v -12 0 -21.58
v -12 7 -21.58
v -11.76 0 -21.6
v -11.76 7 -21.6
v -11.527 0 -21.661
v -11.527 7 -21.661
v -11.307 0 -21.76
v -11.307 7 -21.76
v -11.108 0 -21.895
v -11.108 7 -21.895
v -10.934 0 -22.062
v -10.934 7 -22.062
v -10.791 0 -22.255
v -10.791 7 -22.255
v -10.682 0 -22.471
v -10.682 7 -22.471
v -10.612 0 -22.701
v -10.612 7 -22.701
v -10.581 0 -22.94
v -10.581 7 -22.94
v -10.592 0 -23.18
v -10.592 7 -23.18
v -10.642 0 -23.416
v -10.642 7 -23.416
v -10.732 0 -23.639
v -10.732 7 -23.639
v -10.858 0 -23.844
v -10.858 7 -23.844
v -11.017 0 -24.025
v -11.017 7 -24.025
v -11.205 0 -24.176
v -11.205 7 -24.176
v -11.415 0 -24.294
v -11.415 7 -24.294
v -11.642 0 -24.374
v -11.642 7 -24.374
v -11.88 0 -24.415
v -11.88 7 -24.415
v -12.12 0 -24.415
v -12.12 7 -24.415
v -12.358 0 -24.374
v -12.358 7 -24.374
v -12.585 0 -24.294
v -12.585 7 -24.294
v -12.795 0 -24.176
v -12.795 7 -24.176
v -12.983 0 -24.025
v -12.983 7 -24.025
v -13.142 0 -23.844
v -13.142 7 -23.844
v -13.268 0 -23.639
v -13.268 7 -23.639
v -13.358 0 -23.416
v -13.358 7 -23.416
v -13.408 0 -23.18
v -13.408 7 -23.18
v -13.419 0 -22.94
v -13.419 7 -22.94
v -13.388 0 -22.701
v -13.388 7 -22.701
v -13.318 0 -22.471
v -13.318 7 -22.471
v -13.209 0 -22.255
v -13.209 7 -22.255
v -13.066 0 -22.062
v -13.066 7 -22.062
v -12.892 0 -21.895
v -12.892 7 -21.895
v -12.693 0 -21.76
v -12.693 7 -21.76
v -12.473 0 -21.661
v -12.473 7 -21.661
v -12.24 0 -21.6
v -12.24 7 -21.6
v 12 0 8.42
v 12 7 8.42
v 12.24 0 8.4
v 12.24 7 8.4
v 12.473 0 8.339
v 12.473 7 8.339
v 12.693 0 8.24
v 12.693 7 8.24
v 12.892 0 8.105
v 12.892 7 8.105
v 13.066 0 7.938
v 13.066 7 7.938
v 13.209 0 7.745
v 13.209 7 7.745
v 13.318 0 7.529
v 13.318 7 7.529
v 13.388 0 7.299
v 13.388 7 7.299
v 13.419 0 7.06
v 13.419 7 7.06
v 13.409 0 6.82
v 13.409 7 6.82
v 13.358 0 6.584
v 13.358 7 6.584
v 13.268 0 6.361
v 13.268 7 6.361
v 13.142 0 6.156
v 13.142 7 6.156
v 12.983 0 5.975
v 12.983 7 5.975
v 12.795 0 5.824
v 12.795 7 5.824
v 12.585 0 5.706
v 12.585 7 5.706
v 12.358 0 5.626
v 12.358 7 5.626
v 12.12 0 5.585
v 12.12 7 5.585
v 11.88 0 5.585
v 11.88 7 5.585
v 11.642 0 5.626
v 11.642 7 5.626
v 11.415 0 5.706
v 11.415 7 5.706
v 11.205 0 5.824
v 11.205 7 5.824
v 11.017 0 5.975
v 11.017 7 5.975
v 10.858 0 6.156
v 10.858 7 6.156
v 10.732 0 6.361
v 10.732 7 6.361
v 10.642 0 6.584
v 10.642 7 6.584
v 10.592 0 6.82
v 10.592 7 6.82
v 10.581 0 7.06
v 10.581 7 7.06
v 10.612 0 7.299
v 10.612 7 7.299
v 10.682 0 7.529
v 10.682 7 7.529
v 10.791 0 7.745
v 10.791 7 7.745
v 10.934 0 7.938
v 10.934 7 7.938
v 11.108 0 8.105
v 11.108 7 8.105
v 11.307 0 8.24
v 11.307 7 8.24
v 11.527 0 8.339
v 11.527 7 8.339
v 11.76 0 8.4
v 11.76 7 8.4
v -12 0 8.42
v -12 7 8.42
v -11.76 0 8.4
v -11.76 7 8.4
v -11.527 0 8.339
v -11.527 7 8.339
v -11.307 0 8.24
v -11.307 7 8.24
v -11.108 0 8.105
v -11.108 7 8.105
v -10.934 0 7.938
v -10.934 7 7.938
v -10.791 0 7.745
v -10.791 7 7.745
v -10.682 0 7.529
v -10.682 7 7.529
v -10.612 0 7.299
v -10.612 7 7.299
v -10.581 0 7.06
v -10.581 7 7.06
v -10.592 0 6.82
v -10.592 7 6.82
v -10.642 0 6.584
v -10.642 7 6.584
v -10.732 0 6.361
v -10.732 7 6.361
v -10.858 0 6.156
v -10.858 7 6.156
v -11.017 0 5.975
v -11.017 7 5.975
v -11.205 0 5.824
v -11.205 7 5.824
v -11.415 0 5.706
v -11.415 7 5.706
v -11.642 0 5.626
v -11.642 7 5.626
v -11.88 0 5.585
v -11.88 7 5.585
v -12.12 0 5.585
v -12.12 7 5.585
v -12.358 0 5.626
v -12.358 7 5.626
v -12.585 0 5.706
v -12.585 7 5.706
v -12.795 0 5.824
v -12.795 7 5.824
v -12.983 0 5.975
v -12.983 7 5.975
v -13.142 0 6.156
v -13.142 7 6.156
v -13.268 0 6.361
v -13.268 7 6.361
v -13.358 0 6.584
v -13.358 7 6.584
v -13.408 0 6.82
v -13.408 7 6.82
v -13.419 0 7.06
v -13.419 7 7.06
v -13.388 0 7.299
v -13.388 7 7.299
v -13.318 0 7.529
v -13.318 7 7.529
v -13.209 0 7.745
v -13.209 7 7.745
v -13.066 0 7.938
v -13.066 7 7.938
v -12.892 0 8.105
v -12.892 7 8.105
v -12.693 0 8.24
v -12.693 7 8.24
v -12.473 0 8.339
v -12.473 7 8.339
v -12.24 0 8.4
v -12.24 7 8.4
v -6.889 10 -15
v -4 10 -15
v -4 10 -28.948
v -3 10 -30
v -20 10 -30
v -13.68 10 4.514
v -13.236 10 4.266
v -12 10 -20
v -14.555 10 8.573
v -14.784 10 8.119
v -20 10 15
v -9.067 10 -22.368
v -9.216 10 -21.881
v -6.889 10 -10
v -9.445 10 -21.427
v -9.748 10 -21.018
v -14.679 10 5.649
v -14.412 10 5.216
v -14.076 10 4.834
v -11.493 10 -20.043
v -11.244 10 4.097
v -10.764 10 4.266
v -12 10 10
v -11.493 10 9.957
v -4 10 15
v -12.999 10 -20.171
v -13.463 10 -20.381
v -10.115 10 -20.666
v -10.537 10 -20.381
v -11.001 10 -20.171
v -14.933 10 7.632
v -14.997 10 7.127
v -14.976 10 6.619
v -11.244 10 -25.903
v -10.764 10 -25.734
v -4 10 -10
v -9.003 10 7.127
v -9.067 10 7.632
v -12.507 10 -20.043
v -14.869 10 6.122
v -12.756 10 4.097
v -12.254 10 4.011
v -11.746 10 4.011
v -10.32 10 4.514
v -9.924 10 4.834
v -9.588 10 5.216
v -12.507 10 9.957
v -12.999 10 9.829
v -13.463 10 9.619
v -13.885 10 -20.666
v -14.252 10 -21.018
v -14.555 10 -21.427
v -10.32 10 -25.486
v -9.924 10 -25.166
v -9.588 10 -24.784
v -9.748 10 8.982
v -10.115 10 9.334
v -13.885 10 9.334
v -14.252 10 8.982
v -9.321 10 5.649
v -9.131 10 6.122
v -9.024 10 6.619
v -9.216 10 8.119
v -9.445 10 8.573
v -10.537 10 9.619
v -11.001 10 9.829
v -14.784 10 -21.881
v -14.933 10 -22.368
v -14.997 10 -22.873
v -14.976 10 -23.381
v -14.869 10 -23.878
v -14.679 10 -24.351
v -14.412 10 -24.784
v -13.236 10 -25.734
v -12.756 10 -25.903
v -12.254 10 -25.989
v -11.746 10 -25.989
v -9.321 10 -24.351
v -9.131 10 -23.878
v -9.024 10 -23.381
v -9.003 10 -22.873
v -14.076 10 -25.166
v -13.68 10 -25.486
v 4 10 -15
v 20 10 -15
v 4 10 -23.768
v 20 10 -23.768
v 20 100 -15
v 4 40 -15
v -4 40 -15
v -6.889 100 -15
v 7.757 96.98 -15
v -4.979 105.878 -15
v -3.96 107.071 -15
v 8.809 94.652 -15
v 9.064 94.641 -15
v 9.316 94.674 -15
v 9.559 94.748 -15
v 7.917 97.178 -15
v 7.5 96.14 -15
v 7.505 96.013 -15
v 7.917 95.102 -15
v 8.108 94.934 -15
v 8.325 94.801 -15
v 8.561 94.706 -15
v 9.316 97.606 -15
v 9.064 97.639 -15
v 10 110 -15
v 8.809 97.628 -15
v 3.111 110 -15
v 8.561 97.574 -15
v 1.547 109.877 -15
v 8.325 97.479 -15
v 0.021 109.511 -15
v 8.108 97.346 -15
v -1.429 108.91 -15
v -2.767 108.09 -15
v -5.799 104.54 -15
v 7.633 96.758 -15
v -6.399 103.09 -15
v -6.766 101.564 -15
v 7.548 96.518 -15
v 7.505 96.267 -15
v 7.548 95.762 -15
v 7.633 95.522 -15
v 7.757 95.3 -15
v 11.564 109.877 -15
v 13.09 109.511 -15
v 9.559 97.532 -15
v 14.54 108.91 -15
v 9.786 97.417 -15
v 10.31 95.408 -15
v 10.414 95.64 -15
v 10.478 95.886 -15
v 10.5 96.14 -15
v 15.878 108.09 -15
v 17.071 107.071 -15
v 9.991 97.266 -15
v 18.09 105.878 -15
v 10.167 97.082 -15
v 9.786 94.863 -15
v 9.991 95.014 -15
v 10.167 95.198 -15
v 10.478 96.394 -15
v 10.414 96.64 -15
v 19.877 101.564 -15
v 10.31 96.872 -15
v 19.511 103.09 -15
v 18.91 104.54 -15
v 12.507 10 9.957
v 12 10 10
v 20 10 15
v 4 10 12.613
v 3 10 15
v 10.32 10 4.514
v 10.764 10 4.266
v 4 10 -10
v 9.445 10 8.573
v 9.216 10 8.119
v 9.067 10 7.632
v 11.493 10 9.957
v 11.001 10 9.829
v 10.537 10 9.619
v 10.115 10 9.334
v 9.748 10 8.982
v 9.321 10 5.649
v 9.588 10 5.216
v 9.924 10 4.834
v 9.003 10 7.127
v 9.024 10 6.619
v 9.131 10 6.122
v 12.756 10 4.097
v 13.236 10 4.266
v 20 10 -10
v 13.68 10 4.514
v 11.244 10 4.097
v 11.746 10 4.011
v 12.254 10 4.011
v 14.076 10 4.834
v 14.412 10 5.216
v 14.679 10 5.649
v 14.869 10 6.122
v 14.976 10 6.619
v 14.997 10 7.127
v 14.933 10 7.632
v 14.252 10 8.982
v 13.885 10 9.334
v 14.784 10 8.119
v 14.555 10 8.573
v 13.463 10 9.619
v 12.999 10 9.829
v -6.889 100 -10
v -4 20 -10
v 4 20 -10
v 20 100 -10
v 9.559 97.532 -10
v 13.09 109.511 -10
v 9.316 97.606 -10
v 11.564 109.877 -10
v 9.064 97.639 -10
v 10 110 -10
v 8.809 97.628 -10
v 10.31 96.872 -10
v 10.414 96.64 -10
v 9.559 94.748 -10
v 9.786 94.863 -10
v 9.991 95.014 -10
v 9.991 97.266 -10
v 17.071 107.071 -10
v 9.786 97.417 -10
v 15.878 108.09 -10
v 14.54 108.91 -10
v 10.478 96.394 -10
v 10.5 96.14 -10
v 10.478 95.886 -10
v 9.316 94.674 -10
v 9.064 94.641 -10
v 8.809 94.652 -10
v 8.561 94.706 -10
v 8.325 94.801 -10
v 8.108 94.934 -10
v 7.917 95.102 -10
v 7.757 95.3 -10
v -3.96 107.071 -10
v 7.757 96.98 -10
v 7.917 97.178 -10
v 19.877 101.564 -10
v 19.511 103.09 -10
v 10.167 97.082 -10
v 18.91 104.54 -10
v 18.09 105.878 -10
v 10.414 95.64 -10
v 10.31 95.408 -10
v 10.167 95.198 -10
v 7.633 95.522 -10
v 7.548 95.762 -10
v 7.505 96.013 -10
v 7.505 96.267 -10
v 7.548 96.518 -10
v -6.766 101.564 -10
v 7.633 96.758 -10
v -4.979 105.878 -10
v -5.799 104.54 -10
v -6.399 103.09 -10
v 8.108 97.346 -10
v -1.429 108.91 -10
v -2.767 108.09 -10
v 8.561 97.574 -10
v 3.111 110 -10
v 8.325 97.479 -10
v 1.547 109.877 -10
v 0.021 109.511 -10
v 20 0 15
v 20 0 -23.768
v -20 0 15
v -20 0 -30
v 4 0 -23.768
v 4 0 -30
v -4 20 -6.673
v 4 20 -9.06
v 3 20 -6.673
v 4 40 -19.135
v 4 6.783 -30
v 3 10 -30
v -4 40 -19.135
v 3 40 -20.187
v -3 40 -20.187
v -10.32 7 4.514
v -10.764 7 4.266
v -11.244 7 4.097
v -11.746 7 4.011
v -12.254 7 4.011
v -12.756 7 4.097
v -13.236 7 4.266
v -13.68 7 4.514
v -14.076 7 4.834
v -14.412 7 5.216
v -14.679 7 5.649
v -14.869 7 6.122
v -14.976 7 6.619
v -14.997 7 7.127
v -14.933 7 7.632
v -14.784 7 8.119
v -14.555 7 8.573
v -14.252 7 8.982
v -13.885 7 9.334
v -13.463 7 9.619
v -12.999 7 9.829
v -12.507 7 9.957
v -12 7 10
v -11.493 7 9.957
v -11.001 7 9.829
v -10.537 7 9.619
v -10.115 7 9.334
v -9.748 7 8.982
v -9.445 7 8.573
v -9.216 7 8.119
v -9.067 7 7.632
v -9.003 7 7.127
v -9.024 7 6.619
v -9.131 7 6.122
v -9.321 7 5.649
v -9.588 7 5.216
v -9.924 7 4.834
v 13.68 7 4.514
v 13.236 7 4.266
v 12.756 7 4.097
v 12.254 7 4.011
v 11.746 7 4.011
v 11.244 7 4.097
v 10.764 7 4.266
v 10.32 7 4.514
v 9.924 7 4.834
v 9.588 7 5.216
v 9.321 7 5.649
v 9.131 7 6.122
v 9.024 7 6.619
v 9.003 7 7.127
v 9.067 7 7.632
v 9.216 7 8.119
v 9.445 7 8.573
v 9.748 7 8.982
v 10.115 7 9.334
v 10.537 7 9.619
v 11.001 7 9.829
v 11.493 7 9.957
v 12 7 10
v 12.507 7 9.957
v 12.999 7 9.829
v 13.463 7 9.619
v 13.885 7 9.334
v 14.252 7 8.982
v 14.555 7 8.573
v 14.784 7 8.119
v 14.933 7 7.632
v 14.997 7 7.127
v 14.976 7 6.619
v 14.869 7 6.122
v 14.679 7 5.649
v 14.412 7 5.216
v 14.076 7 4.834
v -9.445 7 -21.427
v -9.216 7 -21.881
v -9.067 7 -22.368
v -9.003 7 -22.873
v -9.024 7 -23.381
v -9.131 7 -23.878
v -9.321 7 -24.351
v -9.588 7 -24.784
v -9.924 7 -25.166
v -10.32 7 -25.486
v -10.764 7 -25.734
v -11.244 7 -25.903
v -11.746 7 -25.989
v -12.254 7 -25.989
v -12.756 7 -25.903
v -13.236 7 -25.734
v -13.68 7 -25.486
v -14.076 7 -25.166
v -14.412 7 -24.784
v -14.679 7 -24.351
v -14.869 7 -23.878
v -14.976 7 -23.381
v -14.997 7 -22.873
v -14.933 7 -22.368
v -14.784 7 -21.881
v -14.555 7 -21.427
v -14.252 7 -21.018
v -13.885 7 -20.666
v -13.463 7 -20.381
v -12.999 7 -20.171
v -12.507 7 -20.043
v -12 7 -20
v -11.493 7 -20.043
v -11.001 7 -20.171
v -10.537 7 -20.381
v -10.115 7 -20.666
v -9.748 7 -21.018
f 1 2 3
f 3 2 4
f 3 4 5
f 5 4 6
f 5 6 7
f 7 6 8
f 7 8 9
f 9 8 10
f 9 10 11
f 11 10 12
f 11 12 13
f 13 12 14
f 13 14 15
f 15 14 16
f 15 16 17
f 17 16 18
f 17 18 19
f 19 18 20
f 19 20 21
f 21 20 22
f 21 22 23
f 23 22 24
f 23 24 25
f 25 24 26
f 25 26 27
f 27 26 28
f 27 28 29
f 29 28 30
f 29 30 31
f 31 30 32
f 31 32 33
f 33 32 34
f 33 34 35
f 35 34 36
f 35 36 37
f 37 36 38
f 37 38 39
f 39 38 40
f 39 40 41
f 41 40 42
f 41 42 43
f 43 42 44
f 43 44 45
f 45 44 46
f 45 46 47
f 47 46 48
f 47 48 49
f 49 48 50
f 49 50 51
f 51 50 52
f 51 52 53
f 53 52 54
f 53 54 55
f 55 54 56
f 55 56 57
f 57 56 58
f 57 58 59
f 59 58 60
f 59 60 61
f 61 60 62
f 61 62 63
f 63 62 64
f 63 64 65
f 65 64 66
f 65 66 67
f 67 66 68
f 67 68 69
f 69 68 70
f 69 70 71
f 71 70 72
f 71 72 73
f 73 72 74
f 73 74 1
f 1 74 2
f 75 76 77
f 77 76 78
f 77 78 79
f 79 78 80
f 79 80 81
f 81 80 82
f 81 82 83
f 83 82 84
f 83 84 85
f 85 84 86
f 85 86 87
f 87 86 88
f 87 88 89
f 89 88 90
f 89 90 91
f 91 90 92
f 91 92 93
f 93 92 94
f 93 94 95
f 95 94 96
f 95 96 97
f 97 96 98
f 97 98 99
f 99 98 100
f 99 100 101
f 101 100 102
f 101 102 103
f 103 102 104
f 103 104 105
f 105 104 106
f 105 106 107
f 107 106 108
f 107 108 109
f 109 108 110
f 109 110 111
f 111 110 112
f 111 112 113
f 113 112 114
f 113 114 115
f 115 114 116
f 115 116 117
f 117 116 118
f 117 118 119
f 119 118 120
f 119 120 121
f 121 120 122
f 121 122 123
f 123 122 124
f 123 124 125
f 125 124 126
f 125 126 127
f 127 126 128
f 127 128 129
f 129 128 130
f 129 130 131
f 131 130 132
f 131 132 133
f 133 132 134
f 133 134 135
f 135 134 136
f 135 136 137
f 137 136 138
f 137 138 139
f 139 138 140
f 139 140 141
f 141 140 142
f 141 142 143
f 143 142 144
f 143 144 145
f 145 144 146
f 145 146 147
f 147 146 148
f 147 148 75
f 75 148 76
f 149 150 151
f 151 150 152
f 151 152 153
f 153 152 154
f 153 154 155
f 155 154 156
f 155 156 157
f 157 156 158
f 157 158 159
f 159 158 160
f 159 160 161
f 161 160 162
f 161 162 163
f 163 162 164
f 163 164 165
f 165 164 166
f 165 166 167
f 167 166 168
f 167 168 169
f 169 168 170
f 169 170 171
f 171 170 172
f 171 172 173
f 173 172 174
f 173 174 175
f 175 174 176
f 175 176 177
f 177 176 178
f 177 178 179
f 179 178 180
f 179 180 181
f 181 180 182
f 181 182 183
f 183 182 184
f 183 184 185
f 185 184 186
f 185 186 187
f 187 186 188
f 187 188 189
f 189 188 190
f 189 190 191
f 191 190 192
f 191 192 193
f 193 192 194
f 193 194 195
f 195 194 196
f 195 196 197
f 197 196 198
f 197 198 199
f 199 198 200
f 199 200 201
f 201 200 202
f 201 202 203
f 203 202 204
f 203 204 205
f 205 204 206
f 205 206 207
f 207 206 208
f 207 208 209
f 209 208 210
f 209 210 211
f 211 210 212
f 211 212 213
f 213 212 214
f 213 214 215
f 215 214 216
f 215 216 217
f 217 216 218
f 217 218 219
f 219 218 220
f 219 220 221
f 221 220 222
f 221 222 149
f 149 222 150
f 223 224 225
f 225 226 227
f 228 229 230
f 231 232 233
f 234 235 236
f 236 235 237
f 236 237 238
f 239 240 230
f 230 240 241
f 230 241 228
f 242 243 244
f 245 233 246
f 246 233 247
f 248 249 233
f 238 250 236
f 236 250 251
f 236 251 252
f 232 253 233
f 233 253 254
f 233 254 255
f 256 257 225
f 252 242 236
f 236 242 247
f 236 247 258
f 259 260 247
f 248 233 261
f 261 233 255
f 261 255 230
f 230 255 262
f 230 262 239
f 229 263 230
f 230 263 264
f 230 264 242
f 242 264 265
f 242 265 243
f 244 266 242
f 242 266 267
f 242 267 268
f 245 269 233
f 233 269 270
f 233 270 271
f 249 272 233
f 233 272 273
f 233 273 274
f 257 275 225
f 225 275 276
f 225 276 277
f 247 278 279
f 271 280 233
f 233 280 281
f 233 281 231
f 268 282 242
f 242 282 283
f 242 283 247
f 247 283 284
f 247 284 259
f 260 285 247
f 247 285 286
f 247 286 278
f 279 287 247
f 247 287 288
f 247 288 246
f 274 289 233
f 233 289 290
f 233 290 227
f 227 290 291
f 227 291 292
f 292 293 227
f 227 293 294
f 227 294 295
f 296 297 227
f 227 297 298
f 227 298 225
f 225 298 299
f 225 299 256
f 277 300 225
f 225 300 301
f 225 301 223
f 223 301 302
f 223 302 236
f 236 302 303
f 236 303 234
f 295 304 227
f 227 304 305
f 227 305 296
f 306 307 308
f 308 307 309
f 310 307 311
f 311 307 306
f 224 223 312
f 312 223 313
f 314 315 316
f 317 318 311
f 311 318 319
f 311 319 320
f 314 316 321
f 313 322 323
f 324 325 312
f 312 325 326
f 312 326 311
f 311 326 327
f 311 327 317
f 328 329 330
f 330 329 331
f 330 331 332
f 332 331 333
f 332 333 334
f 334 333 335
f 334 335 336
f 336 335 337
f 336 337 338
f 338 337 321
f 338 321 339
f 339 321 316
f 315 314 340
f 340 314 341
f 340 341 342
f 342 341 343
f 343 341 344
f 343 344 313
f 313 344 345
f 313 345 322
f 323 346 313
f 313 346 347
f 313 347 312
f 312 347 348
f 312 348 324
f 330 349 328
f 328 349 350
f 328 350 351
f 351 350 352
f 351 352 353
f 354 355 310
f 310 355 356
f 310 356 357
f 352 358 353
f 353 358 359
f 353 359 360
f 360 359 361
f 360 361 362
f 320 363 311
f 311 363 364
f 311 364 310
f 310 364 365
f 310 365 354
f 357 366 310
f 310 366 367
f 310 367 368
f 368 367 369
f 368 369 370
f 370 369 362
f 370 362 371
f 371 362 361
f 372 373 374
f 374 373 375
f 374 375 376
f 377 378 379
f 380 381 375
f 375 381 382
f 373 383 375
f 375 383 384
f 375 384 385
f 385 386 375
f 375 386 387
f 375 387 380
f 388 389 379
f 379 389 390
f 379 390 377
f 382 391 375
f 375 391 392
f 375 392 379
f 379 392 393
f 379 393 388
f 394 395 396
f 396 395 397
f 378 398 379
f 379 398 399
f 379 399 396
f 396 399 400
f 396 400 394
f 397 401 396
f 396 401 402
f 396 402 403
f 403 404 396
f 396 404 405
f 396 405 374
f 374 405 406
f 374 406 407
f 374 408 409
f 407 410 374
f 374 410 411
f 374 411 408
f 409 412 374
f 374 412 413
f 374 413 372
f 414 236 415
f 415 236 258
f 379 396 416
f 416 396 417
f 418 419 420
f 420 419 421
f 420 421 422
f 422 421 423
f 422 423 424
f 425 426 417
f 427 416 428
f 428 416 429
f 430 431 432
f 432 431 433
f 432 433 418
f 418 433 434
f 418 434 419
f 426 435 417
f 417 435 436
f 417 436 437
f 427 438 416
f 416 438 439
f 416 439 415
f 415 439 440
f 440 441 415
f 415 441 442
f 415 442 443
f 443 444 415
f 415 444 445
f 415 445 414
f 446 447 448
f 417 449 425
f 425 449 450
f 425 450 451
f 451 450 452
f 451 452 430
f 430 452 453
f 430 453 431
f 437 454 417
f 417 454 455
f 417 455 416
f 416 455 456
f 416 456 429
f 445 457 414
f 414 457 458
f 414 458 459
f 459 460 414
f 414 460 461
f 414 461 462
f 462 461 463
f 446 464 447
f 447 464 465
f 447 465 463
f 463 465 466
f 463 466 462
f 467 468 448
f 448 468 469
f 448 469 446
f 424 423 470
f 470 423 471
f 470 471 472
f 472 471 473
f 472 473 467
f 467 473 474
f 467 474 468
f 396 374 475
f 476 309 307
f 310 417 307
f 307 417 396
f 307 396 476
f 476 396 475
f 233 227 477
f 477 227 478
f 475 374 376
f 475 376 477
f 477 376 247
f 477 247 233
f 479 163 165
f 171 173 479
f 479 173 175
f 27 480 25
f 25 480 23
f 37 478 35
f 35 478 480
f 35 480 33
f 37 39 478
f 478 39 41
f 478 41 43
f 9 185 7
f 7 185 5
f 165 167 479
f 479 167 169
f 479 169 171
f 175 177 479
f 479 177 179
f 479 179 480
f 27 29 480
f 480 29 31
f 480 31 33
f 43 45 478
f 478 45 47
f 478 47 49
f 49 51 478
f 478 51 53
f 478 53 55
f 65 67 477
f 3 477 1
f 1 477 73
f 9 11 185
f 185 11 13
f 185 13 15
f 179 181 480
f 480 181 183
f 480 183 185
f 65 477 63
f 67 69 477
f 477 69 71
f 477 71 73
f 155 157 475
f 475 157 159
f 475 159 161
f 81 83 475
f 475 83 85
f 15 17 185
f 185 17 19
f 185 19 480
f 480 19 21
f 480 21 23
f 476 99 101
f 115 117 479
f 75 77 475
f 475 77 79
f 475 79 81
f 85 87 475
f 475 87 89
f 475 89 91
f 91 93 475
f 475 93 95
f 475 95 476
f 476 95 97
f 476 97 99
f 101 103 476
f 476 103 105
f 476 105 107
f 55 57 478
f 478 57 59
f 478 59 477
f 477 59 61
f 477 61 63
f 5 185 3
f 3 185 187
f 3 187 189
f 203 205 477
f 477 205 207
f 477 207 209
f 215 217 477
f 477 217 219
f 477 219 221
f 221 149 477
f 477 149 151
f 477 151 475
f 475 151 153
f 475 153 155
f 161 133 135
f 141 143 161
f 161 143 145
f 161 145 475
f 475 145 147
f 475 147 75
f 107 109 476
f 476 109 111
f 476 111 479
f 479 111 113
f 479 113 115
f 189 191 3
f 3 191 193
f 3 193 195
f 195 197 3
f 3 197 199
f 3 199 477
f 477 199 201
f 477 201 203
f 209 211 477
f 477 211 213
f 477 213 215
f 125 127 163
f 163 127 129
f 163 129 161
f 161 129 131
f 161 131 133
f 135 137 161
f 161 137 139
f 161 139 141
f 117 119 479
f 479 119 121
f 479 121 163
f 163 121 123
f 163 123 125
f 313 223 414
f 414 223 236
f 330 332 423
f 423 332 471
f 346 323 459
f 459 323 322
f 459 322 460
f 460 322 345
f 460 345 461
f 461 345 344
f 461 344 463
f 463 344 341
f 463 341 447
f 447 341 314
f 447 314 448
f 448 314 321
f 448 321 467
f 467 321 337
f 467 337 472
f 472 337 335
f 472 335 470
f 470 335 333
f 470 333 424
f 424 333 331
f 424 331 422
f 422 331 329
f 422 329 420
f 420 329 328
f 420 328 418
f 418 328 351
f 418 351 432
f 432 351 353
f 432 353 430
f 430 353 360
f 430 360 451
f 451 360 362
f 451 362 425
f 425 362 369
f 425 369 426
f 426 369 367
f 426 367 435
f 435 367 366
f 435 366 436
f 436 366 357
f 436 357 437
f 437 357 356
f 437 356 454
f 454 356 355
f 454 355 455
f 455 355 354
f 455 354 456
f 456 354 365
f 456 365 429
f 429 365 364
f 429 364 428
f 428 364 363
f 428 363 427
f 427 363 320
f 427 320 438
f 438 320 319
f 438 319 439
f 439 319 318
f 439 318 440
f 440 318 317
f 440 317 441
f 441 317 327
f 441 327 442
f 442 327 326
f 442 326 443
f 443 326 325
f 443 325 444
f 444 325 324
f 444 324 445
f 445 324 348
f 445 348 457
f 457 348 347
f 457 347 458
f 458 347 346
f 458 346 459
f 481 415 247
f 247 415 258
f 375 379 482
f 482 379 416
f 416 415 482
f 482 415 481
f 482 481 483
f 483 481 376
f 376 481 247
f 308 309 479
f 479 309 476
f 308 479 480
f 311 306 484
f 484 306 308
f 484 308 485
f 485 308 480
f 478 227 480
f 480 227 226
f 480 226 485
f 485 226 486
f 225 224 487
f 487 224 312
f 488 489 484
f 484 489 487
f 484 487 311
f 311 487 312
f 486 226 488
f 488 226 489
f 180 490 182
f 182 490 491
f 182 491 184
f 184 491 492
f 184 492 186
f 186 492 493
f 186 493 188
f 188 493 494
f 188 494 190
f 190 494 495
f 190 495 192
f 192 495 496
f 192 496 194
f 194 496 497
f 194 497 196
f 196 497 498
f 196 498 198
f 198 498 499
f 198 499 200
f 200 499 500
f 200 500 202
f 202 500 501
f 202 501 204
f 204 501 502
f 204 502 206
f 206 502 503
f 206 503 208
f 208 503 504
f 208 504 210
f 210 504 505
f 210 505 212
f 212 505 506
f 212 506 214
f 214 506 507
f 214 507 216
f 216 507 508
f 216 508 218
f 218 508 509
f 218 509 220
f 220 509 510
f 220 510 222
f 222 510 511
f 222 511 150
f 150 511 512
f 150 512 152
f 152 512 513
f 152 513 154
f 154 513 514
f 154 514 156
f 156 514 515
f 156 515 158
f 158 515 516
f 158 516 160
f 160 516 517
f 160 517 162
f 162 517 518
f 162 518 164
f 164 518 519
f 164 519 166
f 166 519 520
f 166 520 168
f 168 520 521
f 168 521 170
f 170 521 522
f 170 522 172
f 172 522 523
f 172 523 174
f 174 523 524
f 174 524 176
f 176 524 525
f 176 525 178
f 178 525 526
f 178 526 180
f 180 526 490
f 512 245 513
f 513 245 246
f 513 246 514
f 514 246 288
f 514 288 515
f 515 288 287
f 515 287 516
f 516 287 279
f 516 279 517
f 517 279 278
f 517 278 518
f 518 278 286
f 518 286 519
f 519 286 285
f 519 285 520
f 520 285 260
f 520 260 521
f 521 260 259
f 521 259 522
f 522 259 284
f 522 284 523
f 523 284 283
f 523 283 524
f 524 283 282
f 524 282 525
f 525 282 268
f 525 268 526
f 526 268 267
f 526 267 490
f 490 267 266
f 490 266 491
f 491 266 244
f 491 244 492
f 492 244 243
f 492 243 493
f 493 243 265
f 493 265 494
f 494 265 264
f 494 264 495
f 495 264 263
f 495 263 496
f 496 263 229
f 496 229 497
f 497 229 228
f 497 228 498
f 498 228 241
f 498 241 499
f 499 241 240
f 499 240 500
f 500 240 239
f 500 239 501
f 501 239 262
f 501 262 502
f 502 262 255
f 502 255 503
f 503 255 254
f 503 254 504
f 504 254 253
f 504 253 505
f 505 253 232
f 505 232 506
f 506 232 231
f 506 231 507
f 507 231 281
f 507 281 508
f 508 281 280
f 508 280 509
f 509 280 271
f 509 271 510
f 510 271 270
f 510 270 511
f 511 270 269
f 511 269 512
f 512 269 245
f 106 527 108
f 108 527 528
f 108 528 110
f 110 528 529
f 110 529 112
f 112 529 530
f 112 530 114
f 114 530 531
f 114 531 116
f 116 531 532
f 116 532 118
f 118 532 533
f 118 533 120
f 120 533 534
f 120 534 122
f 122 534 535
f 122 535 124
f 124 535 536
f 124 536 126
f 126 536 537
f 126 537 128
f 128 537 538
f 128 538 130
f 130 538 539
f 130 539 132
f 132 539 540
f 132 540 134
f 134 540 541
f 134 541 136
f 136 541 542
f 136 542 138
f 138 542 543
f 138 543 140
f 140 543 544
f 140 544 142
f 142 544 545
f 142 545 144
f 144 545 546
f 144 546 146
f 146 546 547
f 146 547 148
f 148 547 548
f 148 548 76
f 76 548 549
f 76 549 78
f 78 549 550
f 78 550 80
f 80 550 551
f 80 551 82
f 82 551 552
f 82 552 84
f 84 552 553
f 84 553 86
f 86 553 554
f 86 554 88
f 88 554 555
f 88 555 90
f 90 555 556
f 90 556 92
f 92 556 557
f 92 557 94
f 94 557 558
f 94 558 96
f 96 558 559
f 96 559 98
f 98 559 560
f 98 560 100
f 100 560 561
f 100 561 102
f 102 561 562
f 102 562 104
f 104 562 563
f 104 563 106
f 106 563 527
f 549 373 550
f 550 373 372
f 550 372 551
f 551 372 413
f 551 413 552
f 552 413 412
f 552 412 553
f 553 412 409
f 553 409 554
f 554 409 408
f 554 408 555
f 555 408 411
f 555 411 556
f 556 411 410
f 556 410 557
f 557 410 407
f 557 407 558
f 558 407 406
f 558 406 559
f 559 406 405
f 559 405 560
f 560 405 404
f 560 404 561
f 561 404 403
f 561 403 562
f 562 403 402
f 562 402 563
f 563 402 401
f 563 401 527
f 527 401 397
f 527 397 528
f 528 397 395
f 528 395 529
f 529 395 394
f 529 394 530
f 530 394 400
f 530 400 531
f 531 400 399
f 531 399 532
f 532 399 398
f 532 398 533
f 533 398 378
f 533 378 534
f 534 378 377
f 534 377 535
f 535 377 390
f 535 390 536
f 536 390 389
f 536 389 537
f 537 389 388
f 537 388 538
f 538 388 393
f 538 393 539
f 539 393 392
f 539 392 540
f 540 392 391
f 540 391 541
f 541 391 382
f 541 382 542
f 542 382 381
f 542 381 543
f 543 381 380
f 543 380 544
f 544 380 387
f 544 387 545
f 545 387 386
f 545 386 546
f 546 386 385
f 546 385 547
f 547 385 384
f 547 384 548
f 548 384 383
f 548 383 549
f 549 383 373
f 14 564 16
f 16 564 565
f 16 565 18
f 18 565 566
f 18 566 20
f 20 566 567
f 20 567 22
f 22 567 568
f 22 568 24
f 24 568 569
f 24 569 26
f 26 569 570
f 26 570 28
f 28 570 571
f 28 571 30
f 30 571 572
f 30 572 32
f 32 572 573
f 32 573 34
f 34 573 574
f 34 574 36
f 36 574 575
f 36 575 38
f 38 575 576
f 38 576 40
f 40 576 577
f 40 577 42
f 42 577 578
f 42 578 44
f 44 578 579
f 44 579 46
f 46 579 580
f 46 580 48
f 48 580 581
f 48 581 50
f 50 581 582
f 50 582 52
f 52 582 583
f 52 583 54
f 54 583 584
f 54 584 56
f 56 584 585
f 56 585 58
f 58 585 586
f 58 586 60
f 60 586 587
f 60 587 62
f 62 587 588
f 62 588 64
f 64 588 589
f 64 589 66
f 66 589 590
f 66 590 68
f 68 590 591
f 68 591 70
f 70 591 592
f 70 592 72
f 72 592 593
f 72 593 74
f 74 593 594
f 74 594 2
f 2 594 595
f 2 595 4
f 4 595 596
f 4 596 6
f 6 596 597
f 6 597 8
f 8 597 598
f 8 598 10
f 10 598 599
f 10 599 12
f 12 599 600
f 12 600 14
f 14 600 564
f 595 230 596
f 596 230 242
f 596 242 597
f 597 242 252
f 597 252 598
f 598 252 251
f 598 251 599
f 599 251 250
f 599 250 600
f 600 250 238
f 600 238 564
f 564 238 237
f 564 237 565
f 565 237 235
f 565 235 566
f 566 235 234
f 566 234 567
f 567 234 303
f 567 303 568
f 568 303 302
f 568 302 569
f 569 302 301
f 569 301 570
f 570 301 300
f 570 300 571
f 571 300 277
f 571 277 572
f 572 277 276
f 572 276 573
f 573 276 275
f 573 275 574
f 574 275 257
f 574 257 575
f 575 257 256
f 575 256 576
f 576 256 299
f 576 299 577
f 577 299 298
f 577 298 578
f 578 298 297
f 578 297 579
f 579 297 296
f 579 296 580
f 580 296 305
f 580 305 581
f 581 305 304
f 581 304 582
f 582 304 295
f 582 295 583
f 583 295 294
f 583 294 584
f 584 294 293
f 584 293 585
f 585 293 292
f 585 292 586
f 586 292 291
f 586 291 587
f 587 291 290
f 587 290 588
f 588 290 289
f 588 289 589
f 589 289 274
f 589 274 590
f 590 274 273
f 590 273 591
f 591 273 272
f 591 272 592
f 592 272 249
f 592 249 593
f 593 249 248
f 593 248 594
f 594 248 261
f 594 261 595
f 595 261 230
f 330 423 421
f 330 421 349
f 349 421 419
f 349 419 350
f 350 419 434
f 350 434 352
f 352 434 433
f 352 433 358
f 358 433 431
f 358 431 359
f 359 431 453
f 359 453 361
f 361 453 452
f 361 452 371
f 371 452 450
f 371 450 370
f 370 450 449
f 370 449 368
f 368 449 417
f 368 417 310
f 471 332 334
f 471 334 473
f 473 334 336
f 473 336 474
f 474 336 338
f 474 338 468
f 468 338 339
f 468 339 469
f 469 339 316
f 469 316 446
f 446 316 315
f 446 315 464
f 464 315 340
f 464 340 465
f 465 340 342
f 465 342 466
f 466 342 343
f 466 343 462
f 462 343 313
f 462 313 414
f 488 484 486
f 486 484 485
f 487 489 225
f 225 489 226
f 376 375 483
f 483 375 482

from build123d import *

# Parameters (mm, degrees)
SKETCH1_W           = 40
SKETCH1_H           = 24.2
SKETCH1_H_2         = 5.8
BOSS_EXTRUDE1_DEPTH = 10
SKETCH2_W           = 26.88873999
SKETCH2_H           = 5
BOSS_EXTRUDE2_DEPTH = 100
SKETCH3_R           = 1.5
CUT_EXTRUDE1_DEPTH  = 30
SKETCH6_W           = 8
SKETCH6_H           = 25
BOSS_EXTRUDE3_DEPTH = 10
CUT_EXTRUDE4_DEPTH  = 35
BOSS_EXTRUDE4_DEPTH = 10
SKETCH9_W           = 8
SKETCH9_H           = 15
BOSS_EXTRUDE5_DEPTH = 30
CUT_EXTRUDE5_DEPTH  = 35
SKETCH11_R          = 1.42
CUT_EXTRUDE6_DEPTH  = 20
SKETCH12_R          = 3
CUT_EXTRUDE7_DEPTH  = 3
FILLET1_R           = 10
CHAMFER1_SIZE       = 1
CHAMFER2_SIZE       = 1


with BuildPart() as part:
    # Sketch1 → Boss-Extrude1 (new body)
    with BuildSketch(Plane(origin=(0, 0, 0), x_dir=(1, 0, 0), z_dir=(0, 1, 0))):
        with Locations((0, -2.9)):
            Rectangle(SKETCH1_W, SKETCH1_H)
        with Locations((0, 12.1)):
            Rectangle(SKETCH1_W, SKETCH1_H_2)
    extrude(amount=BOSS_EXTRUDE1_DEPTH)

    # Sketch2 → Boss-Extrude2 (add)
    with BuildSketch(Plane(origin=(0, 10, 0), x_dir=(1, 0, 0), z_dir=(0, 1, 0))):
        with Locations((6.555630005, 12.5)):
            Rectangle(SKETCH2_W, SKETCH2_H)
    extrude(amount=BOSS_EXTRUDE2_DEPTH)

    # Sketch3 → Cut-Extrude1 (cut)
    with BuildSketch(Plane.XY.offset(-10)):
        with Locations((9, 96.14)):
            Circle(SKETCH3_R)
    extrude(amount=-CUT_EXTRUDE1_DEPTH, mode=Mode.SUBTRACT)

    # Sketch6 → Boss-Extrude3 (add)
    with BuildSketch(Plane(origin=(0, 10, 0), x_dir=(1, 0, 0), z_dir=(0, 1, 0))):
        with Locations((0, -2.5)):
            Rectangle(SKETCH6_W, SKETCH6_H)
    extrude(amount=BOSS_EXTRUDE3_DEPTH)

    # Sketch7 → Cut-Extrude4 (cut)
    with BuildSketch(Plane.ZY.offset(4)):
        Polygon((-10, 21.535084573), (15, 10), (15, 21.535084573), align=None)
    extrude(amount=-CUT_EXTRUDE4_DEPTH, mode=Mode.SUBTRACT)

    # Sketch8 → Boss-Extrude4 (add)
    with BuildSketch(Plane(origin=(0, 0, 0), x_dir=(1, 0, 0), z_dir=(0, 1, 0))):
        Polygon((-20, 30), (-20, 15), (20, 15), (20, 23.768276438), (4, 23.768276438), (4, 30), align=None)
    extrude(amount=BOSS_EXTRUDE4_DEPTH)

    # Sketch9 → Boss-Extrude5 (add)
    with BuildSketch(Plane(origin=(0, 10, 0), x_dir=(1, 0, 0), z_dir=(0, 1, 0))):
        with Locations((0, 22.5)):
            Rectangle(SKETCH9_W, SKETCH9_H)
    extrude(amount=BOSS_EXTRUDE5_DEPTH)

    # Sketch10 → Cut-Extrude5 (cut)
    with BuildSketch(Plane.ZY.offset(4)):
        Polygon((-30, 10), (-20.186840819, 40), (-30, 40), align=None)
    extrude(amount=-CUT_EXTRUDE5_DEPTH, mode=Mode.SUBTRACT)

    # Sketch11 → Cut-Extrude6 (cut)
    with BuildSketch(Plane(origin=(0, 10, 0), x_dir=(1, 0, 0), z_dir=(0, 1, 0))):
        with Locations(Location((-12, -7, 0), (0, 0, 270))):
            Circle(SKETCH11_R)
        with Locations(Location((12, -7, 0), (0, 0, 270))):
            Circle(SKETCH11_R)
        with Locations(Location((-12, 23, 0), (0, 0, 270))):
            Circle(SKETCH11_R)
    extrude(amount=-CUT_EXTRUDE6_DEPTH, mode=Mode.SUBTRACT)

    # Sketch12 → Cut-Extrude7 (cut)
    with BuildSketch(Plane(origin=(0, 10, 0), x_dir=(1, 0, 0), z_dir=(0, 1, 0))):
        with Locations(Location((-12, -7, 0), (0, 0, 270))):
            Circle(SKETCH12_R)
        with Locations(Location((12, -7, 0), (0, 0, 270))):
            Circle(SKETCH12_R)
        with Locations(Location((-12, 23, 0), (0, 0, 270))):
            Circle(SKETCH12_R)
    extrude(amount=-CUT_EXTRUDE7_DEPTH, mode=Mode.SUBTRACT)

    # Fillet1
    fillet1_edges = [part.edges().sort_by_distance(p)[0] for p in [
        (-6.88873999, 110, -12.5),
        (20, 110, -12.5),
    ]]
    fillet(fillet1_edges, radius=FILLET1_R)

    # Chamfer1
    chamfer1_edges = [part.edges().sort_by_distance(p)[0] for p in [
        (4, 25, -25.093420409),
        (-4, 25, -25.093420409),
    ]]
    chamfer(chamfer1_edges, length=CHAMFER1_SIZE)

    # Chamfer2
    chamfer2_edges = [part.edges().sort_by_distance(p)[0] for p in [
        (4, 15, 4.163495143),
    ]]
    chamfer(chamfer2_edges, length=CHAMFER2_SIZE)


solid = part.part
